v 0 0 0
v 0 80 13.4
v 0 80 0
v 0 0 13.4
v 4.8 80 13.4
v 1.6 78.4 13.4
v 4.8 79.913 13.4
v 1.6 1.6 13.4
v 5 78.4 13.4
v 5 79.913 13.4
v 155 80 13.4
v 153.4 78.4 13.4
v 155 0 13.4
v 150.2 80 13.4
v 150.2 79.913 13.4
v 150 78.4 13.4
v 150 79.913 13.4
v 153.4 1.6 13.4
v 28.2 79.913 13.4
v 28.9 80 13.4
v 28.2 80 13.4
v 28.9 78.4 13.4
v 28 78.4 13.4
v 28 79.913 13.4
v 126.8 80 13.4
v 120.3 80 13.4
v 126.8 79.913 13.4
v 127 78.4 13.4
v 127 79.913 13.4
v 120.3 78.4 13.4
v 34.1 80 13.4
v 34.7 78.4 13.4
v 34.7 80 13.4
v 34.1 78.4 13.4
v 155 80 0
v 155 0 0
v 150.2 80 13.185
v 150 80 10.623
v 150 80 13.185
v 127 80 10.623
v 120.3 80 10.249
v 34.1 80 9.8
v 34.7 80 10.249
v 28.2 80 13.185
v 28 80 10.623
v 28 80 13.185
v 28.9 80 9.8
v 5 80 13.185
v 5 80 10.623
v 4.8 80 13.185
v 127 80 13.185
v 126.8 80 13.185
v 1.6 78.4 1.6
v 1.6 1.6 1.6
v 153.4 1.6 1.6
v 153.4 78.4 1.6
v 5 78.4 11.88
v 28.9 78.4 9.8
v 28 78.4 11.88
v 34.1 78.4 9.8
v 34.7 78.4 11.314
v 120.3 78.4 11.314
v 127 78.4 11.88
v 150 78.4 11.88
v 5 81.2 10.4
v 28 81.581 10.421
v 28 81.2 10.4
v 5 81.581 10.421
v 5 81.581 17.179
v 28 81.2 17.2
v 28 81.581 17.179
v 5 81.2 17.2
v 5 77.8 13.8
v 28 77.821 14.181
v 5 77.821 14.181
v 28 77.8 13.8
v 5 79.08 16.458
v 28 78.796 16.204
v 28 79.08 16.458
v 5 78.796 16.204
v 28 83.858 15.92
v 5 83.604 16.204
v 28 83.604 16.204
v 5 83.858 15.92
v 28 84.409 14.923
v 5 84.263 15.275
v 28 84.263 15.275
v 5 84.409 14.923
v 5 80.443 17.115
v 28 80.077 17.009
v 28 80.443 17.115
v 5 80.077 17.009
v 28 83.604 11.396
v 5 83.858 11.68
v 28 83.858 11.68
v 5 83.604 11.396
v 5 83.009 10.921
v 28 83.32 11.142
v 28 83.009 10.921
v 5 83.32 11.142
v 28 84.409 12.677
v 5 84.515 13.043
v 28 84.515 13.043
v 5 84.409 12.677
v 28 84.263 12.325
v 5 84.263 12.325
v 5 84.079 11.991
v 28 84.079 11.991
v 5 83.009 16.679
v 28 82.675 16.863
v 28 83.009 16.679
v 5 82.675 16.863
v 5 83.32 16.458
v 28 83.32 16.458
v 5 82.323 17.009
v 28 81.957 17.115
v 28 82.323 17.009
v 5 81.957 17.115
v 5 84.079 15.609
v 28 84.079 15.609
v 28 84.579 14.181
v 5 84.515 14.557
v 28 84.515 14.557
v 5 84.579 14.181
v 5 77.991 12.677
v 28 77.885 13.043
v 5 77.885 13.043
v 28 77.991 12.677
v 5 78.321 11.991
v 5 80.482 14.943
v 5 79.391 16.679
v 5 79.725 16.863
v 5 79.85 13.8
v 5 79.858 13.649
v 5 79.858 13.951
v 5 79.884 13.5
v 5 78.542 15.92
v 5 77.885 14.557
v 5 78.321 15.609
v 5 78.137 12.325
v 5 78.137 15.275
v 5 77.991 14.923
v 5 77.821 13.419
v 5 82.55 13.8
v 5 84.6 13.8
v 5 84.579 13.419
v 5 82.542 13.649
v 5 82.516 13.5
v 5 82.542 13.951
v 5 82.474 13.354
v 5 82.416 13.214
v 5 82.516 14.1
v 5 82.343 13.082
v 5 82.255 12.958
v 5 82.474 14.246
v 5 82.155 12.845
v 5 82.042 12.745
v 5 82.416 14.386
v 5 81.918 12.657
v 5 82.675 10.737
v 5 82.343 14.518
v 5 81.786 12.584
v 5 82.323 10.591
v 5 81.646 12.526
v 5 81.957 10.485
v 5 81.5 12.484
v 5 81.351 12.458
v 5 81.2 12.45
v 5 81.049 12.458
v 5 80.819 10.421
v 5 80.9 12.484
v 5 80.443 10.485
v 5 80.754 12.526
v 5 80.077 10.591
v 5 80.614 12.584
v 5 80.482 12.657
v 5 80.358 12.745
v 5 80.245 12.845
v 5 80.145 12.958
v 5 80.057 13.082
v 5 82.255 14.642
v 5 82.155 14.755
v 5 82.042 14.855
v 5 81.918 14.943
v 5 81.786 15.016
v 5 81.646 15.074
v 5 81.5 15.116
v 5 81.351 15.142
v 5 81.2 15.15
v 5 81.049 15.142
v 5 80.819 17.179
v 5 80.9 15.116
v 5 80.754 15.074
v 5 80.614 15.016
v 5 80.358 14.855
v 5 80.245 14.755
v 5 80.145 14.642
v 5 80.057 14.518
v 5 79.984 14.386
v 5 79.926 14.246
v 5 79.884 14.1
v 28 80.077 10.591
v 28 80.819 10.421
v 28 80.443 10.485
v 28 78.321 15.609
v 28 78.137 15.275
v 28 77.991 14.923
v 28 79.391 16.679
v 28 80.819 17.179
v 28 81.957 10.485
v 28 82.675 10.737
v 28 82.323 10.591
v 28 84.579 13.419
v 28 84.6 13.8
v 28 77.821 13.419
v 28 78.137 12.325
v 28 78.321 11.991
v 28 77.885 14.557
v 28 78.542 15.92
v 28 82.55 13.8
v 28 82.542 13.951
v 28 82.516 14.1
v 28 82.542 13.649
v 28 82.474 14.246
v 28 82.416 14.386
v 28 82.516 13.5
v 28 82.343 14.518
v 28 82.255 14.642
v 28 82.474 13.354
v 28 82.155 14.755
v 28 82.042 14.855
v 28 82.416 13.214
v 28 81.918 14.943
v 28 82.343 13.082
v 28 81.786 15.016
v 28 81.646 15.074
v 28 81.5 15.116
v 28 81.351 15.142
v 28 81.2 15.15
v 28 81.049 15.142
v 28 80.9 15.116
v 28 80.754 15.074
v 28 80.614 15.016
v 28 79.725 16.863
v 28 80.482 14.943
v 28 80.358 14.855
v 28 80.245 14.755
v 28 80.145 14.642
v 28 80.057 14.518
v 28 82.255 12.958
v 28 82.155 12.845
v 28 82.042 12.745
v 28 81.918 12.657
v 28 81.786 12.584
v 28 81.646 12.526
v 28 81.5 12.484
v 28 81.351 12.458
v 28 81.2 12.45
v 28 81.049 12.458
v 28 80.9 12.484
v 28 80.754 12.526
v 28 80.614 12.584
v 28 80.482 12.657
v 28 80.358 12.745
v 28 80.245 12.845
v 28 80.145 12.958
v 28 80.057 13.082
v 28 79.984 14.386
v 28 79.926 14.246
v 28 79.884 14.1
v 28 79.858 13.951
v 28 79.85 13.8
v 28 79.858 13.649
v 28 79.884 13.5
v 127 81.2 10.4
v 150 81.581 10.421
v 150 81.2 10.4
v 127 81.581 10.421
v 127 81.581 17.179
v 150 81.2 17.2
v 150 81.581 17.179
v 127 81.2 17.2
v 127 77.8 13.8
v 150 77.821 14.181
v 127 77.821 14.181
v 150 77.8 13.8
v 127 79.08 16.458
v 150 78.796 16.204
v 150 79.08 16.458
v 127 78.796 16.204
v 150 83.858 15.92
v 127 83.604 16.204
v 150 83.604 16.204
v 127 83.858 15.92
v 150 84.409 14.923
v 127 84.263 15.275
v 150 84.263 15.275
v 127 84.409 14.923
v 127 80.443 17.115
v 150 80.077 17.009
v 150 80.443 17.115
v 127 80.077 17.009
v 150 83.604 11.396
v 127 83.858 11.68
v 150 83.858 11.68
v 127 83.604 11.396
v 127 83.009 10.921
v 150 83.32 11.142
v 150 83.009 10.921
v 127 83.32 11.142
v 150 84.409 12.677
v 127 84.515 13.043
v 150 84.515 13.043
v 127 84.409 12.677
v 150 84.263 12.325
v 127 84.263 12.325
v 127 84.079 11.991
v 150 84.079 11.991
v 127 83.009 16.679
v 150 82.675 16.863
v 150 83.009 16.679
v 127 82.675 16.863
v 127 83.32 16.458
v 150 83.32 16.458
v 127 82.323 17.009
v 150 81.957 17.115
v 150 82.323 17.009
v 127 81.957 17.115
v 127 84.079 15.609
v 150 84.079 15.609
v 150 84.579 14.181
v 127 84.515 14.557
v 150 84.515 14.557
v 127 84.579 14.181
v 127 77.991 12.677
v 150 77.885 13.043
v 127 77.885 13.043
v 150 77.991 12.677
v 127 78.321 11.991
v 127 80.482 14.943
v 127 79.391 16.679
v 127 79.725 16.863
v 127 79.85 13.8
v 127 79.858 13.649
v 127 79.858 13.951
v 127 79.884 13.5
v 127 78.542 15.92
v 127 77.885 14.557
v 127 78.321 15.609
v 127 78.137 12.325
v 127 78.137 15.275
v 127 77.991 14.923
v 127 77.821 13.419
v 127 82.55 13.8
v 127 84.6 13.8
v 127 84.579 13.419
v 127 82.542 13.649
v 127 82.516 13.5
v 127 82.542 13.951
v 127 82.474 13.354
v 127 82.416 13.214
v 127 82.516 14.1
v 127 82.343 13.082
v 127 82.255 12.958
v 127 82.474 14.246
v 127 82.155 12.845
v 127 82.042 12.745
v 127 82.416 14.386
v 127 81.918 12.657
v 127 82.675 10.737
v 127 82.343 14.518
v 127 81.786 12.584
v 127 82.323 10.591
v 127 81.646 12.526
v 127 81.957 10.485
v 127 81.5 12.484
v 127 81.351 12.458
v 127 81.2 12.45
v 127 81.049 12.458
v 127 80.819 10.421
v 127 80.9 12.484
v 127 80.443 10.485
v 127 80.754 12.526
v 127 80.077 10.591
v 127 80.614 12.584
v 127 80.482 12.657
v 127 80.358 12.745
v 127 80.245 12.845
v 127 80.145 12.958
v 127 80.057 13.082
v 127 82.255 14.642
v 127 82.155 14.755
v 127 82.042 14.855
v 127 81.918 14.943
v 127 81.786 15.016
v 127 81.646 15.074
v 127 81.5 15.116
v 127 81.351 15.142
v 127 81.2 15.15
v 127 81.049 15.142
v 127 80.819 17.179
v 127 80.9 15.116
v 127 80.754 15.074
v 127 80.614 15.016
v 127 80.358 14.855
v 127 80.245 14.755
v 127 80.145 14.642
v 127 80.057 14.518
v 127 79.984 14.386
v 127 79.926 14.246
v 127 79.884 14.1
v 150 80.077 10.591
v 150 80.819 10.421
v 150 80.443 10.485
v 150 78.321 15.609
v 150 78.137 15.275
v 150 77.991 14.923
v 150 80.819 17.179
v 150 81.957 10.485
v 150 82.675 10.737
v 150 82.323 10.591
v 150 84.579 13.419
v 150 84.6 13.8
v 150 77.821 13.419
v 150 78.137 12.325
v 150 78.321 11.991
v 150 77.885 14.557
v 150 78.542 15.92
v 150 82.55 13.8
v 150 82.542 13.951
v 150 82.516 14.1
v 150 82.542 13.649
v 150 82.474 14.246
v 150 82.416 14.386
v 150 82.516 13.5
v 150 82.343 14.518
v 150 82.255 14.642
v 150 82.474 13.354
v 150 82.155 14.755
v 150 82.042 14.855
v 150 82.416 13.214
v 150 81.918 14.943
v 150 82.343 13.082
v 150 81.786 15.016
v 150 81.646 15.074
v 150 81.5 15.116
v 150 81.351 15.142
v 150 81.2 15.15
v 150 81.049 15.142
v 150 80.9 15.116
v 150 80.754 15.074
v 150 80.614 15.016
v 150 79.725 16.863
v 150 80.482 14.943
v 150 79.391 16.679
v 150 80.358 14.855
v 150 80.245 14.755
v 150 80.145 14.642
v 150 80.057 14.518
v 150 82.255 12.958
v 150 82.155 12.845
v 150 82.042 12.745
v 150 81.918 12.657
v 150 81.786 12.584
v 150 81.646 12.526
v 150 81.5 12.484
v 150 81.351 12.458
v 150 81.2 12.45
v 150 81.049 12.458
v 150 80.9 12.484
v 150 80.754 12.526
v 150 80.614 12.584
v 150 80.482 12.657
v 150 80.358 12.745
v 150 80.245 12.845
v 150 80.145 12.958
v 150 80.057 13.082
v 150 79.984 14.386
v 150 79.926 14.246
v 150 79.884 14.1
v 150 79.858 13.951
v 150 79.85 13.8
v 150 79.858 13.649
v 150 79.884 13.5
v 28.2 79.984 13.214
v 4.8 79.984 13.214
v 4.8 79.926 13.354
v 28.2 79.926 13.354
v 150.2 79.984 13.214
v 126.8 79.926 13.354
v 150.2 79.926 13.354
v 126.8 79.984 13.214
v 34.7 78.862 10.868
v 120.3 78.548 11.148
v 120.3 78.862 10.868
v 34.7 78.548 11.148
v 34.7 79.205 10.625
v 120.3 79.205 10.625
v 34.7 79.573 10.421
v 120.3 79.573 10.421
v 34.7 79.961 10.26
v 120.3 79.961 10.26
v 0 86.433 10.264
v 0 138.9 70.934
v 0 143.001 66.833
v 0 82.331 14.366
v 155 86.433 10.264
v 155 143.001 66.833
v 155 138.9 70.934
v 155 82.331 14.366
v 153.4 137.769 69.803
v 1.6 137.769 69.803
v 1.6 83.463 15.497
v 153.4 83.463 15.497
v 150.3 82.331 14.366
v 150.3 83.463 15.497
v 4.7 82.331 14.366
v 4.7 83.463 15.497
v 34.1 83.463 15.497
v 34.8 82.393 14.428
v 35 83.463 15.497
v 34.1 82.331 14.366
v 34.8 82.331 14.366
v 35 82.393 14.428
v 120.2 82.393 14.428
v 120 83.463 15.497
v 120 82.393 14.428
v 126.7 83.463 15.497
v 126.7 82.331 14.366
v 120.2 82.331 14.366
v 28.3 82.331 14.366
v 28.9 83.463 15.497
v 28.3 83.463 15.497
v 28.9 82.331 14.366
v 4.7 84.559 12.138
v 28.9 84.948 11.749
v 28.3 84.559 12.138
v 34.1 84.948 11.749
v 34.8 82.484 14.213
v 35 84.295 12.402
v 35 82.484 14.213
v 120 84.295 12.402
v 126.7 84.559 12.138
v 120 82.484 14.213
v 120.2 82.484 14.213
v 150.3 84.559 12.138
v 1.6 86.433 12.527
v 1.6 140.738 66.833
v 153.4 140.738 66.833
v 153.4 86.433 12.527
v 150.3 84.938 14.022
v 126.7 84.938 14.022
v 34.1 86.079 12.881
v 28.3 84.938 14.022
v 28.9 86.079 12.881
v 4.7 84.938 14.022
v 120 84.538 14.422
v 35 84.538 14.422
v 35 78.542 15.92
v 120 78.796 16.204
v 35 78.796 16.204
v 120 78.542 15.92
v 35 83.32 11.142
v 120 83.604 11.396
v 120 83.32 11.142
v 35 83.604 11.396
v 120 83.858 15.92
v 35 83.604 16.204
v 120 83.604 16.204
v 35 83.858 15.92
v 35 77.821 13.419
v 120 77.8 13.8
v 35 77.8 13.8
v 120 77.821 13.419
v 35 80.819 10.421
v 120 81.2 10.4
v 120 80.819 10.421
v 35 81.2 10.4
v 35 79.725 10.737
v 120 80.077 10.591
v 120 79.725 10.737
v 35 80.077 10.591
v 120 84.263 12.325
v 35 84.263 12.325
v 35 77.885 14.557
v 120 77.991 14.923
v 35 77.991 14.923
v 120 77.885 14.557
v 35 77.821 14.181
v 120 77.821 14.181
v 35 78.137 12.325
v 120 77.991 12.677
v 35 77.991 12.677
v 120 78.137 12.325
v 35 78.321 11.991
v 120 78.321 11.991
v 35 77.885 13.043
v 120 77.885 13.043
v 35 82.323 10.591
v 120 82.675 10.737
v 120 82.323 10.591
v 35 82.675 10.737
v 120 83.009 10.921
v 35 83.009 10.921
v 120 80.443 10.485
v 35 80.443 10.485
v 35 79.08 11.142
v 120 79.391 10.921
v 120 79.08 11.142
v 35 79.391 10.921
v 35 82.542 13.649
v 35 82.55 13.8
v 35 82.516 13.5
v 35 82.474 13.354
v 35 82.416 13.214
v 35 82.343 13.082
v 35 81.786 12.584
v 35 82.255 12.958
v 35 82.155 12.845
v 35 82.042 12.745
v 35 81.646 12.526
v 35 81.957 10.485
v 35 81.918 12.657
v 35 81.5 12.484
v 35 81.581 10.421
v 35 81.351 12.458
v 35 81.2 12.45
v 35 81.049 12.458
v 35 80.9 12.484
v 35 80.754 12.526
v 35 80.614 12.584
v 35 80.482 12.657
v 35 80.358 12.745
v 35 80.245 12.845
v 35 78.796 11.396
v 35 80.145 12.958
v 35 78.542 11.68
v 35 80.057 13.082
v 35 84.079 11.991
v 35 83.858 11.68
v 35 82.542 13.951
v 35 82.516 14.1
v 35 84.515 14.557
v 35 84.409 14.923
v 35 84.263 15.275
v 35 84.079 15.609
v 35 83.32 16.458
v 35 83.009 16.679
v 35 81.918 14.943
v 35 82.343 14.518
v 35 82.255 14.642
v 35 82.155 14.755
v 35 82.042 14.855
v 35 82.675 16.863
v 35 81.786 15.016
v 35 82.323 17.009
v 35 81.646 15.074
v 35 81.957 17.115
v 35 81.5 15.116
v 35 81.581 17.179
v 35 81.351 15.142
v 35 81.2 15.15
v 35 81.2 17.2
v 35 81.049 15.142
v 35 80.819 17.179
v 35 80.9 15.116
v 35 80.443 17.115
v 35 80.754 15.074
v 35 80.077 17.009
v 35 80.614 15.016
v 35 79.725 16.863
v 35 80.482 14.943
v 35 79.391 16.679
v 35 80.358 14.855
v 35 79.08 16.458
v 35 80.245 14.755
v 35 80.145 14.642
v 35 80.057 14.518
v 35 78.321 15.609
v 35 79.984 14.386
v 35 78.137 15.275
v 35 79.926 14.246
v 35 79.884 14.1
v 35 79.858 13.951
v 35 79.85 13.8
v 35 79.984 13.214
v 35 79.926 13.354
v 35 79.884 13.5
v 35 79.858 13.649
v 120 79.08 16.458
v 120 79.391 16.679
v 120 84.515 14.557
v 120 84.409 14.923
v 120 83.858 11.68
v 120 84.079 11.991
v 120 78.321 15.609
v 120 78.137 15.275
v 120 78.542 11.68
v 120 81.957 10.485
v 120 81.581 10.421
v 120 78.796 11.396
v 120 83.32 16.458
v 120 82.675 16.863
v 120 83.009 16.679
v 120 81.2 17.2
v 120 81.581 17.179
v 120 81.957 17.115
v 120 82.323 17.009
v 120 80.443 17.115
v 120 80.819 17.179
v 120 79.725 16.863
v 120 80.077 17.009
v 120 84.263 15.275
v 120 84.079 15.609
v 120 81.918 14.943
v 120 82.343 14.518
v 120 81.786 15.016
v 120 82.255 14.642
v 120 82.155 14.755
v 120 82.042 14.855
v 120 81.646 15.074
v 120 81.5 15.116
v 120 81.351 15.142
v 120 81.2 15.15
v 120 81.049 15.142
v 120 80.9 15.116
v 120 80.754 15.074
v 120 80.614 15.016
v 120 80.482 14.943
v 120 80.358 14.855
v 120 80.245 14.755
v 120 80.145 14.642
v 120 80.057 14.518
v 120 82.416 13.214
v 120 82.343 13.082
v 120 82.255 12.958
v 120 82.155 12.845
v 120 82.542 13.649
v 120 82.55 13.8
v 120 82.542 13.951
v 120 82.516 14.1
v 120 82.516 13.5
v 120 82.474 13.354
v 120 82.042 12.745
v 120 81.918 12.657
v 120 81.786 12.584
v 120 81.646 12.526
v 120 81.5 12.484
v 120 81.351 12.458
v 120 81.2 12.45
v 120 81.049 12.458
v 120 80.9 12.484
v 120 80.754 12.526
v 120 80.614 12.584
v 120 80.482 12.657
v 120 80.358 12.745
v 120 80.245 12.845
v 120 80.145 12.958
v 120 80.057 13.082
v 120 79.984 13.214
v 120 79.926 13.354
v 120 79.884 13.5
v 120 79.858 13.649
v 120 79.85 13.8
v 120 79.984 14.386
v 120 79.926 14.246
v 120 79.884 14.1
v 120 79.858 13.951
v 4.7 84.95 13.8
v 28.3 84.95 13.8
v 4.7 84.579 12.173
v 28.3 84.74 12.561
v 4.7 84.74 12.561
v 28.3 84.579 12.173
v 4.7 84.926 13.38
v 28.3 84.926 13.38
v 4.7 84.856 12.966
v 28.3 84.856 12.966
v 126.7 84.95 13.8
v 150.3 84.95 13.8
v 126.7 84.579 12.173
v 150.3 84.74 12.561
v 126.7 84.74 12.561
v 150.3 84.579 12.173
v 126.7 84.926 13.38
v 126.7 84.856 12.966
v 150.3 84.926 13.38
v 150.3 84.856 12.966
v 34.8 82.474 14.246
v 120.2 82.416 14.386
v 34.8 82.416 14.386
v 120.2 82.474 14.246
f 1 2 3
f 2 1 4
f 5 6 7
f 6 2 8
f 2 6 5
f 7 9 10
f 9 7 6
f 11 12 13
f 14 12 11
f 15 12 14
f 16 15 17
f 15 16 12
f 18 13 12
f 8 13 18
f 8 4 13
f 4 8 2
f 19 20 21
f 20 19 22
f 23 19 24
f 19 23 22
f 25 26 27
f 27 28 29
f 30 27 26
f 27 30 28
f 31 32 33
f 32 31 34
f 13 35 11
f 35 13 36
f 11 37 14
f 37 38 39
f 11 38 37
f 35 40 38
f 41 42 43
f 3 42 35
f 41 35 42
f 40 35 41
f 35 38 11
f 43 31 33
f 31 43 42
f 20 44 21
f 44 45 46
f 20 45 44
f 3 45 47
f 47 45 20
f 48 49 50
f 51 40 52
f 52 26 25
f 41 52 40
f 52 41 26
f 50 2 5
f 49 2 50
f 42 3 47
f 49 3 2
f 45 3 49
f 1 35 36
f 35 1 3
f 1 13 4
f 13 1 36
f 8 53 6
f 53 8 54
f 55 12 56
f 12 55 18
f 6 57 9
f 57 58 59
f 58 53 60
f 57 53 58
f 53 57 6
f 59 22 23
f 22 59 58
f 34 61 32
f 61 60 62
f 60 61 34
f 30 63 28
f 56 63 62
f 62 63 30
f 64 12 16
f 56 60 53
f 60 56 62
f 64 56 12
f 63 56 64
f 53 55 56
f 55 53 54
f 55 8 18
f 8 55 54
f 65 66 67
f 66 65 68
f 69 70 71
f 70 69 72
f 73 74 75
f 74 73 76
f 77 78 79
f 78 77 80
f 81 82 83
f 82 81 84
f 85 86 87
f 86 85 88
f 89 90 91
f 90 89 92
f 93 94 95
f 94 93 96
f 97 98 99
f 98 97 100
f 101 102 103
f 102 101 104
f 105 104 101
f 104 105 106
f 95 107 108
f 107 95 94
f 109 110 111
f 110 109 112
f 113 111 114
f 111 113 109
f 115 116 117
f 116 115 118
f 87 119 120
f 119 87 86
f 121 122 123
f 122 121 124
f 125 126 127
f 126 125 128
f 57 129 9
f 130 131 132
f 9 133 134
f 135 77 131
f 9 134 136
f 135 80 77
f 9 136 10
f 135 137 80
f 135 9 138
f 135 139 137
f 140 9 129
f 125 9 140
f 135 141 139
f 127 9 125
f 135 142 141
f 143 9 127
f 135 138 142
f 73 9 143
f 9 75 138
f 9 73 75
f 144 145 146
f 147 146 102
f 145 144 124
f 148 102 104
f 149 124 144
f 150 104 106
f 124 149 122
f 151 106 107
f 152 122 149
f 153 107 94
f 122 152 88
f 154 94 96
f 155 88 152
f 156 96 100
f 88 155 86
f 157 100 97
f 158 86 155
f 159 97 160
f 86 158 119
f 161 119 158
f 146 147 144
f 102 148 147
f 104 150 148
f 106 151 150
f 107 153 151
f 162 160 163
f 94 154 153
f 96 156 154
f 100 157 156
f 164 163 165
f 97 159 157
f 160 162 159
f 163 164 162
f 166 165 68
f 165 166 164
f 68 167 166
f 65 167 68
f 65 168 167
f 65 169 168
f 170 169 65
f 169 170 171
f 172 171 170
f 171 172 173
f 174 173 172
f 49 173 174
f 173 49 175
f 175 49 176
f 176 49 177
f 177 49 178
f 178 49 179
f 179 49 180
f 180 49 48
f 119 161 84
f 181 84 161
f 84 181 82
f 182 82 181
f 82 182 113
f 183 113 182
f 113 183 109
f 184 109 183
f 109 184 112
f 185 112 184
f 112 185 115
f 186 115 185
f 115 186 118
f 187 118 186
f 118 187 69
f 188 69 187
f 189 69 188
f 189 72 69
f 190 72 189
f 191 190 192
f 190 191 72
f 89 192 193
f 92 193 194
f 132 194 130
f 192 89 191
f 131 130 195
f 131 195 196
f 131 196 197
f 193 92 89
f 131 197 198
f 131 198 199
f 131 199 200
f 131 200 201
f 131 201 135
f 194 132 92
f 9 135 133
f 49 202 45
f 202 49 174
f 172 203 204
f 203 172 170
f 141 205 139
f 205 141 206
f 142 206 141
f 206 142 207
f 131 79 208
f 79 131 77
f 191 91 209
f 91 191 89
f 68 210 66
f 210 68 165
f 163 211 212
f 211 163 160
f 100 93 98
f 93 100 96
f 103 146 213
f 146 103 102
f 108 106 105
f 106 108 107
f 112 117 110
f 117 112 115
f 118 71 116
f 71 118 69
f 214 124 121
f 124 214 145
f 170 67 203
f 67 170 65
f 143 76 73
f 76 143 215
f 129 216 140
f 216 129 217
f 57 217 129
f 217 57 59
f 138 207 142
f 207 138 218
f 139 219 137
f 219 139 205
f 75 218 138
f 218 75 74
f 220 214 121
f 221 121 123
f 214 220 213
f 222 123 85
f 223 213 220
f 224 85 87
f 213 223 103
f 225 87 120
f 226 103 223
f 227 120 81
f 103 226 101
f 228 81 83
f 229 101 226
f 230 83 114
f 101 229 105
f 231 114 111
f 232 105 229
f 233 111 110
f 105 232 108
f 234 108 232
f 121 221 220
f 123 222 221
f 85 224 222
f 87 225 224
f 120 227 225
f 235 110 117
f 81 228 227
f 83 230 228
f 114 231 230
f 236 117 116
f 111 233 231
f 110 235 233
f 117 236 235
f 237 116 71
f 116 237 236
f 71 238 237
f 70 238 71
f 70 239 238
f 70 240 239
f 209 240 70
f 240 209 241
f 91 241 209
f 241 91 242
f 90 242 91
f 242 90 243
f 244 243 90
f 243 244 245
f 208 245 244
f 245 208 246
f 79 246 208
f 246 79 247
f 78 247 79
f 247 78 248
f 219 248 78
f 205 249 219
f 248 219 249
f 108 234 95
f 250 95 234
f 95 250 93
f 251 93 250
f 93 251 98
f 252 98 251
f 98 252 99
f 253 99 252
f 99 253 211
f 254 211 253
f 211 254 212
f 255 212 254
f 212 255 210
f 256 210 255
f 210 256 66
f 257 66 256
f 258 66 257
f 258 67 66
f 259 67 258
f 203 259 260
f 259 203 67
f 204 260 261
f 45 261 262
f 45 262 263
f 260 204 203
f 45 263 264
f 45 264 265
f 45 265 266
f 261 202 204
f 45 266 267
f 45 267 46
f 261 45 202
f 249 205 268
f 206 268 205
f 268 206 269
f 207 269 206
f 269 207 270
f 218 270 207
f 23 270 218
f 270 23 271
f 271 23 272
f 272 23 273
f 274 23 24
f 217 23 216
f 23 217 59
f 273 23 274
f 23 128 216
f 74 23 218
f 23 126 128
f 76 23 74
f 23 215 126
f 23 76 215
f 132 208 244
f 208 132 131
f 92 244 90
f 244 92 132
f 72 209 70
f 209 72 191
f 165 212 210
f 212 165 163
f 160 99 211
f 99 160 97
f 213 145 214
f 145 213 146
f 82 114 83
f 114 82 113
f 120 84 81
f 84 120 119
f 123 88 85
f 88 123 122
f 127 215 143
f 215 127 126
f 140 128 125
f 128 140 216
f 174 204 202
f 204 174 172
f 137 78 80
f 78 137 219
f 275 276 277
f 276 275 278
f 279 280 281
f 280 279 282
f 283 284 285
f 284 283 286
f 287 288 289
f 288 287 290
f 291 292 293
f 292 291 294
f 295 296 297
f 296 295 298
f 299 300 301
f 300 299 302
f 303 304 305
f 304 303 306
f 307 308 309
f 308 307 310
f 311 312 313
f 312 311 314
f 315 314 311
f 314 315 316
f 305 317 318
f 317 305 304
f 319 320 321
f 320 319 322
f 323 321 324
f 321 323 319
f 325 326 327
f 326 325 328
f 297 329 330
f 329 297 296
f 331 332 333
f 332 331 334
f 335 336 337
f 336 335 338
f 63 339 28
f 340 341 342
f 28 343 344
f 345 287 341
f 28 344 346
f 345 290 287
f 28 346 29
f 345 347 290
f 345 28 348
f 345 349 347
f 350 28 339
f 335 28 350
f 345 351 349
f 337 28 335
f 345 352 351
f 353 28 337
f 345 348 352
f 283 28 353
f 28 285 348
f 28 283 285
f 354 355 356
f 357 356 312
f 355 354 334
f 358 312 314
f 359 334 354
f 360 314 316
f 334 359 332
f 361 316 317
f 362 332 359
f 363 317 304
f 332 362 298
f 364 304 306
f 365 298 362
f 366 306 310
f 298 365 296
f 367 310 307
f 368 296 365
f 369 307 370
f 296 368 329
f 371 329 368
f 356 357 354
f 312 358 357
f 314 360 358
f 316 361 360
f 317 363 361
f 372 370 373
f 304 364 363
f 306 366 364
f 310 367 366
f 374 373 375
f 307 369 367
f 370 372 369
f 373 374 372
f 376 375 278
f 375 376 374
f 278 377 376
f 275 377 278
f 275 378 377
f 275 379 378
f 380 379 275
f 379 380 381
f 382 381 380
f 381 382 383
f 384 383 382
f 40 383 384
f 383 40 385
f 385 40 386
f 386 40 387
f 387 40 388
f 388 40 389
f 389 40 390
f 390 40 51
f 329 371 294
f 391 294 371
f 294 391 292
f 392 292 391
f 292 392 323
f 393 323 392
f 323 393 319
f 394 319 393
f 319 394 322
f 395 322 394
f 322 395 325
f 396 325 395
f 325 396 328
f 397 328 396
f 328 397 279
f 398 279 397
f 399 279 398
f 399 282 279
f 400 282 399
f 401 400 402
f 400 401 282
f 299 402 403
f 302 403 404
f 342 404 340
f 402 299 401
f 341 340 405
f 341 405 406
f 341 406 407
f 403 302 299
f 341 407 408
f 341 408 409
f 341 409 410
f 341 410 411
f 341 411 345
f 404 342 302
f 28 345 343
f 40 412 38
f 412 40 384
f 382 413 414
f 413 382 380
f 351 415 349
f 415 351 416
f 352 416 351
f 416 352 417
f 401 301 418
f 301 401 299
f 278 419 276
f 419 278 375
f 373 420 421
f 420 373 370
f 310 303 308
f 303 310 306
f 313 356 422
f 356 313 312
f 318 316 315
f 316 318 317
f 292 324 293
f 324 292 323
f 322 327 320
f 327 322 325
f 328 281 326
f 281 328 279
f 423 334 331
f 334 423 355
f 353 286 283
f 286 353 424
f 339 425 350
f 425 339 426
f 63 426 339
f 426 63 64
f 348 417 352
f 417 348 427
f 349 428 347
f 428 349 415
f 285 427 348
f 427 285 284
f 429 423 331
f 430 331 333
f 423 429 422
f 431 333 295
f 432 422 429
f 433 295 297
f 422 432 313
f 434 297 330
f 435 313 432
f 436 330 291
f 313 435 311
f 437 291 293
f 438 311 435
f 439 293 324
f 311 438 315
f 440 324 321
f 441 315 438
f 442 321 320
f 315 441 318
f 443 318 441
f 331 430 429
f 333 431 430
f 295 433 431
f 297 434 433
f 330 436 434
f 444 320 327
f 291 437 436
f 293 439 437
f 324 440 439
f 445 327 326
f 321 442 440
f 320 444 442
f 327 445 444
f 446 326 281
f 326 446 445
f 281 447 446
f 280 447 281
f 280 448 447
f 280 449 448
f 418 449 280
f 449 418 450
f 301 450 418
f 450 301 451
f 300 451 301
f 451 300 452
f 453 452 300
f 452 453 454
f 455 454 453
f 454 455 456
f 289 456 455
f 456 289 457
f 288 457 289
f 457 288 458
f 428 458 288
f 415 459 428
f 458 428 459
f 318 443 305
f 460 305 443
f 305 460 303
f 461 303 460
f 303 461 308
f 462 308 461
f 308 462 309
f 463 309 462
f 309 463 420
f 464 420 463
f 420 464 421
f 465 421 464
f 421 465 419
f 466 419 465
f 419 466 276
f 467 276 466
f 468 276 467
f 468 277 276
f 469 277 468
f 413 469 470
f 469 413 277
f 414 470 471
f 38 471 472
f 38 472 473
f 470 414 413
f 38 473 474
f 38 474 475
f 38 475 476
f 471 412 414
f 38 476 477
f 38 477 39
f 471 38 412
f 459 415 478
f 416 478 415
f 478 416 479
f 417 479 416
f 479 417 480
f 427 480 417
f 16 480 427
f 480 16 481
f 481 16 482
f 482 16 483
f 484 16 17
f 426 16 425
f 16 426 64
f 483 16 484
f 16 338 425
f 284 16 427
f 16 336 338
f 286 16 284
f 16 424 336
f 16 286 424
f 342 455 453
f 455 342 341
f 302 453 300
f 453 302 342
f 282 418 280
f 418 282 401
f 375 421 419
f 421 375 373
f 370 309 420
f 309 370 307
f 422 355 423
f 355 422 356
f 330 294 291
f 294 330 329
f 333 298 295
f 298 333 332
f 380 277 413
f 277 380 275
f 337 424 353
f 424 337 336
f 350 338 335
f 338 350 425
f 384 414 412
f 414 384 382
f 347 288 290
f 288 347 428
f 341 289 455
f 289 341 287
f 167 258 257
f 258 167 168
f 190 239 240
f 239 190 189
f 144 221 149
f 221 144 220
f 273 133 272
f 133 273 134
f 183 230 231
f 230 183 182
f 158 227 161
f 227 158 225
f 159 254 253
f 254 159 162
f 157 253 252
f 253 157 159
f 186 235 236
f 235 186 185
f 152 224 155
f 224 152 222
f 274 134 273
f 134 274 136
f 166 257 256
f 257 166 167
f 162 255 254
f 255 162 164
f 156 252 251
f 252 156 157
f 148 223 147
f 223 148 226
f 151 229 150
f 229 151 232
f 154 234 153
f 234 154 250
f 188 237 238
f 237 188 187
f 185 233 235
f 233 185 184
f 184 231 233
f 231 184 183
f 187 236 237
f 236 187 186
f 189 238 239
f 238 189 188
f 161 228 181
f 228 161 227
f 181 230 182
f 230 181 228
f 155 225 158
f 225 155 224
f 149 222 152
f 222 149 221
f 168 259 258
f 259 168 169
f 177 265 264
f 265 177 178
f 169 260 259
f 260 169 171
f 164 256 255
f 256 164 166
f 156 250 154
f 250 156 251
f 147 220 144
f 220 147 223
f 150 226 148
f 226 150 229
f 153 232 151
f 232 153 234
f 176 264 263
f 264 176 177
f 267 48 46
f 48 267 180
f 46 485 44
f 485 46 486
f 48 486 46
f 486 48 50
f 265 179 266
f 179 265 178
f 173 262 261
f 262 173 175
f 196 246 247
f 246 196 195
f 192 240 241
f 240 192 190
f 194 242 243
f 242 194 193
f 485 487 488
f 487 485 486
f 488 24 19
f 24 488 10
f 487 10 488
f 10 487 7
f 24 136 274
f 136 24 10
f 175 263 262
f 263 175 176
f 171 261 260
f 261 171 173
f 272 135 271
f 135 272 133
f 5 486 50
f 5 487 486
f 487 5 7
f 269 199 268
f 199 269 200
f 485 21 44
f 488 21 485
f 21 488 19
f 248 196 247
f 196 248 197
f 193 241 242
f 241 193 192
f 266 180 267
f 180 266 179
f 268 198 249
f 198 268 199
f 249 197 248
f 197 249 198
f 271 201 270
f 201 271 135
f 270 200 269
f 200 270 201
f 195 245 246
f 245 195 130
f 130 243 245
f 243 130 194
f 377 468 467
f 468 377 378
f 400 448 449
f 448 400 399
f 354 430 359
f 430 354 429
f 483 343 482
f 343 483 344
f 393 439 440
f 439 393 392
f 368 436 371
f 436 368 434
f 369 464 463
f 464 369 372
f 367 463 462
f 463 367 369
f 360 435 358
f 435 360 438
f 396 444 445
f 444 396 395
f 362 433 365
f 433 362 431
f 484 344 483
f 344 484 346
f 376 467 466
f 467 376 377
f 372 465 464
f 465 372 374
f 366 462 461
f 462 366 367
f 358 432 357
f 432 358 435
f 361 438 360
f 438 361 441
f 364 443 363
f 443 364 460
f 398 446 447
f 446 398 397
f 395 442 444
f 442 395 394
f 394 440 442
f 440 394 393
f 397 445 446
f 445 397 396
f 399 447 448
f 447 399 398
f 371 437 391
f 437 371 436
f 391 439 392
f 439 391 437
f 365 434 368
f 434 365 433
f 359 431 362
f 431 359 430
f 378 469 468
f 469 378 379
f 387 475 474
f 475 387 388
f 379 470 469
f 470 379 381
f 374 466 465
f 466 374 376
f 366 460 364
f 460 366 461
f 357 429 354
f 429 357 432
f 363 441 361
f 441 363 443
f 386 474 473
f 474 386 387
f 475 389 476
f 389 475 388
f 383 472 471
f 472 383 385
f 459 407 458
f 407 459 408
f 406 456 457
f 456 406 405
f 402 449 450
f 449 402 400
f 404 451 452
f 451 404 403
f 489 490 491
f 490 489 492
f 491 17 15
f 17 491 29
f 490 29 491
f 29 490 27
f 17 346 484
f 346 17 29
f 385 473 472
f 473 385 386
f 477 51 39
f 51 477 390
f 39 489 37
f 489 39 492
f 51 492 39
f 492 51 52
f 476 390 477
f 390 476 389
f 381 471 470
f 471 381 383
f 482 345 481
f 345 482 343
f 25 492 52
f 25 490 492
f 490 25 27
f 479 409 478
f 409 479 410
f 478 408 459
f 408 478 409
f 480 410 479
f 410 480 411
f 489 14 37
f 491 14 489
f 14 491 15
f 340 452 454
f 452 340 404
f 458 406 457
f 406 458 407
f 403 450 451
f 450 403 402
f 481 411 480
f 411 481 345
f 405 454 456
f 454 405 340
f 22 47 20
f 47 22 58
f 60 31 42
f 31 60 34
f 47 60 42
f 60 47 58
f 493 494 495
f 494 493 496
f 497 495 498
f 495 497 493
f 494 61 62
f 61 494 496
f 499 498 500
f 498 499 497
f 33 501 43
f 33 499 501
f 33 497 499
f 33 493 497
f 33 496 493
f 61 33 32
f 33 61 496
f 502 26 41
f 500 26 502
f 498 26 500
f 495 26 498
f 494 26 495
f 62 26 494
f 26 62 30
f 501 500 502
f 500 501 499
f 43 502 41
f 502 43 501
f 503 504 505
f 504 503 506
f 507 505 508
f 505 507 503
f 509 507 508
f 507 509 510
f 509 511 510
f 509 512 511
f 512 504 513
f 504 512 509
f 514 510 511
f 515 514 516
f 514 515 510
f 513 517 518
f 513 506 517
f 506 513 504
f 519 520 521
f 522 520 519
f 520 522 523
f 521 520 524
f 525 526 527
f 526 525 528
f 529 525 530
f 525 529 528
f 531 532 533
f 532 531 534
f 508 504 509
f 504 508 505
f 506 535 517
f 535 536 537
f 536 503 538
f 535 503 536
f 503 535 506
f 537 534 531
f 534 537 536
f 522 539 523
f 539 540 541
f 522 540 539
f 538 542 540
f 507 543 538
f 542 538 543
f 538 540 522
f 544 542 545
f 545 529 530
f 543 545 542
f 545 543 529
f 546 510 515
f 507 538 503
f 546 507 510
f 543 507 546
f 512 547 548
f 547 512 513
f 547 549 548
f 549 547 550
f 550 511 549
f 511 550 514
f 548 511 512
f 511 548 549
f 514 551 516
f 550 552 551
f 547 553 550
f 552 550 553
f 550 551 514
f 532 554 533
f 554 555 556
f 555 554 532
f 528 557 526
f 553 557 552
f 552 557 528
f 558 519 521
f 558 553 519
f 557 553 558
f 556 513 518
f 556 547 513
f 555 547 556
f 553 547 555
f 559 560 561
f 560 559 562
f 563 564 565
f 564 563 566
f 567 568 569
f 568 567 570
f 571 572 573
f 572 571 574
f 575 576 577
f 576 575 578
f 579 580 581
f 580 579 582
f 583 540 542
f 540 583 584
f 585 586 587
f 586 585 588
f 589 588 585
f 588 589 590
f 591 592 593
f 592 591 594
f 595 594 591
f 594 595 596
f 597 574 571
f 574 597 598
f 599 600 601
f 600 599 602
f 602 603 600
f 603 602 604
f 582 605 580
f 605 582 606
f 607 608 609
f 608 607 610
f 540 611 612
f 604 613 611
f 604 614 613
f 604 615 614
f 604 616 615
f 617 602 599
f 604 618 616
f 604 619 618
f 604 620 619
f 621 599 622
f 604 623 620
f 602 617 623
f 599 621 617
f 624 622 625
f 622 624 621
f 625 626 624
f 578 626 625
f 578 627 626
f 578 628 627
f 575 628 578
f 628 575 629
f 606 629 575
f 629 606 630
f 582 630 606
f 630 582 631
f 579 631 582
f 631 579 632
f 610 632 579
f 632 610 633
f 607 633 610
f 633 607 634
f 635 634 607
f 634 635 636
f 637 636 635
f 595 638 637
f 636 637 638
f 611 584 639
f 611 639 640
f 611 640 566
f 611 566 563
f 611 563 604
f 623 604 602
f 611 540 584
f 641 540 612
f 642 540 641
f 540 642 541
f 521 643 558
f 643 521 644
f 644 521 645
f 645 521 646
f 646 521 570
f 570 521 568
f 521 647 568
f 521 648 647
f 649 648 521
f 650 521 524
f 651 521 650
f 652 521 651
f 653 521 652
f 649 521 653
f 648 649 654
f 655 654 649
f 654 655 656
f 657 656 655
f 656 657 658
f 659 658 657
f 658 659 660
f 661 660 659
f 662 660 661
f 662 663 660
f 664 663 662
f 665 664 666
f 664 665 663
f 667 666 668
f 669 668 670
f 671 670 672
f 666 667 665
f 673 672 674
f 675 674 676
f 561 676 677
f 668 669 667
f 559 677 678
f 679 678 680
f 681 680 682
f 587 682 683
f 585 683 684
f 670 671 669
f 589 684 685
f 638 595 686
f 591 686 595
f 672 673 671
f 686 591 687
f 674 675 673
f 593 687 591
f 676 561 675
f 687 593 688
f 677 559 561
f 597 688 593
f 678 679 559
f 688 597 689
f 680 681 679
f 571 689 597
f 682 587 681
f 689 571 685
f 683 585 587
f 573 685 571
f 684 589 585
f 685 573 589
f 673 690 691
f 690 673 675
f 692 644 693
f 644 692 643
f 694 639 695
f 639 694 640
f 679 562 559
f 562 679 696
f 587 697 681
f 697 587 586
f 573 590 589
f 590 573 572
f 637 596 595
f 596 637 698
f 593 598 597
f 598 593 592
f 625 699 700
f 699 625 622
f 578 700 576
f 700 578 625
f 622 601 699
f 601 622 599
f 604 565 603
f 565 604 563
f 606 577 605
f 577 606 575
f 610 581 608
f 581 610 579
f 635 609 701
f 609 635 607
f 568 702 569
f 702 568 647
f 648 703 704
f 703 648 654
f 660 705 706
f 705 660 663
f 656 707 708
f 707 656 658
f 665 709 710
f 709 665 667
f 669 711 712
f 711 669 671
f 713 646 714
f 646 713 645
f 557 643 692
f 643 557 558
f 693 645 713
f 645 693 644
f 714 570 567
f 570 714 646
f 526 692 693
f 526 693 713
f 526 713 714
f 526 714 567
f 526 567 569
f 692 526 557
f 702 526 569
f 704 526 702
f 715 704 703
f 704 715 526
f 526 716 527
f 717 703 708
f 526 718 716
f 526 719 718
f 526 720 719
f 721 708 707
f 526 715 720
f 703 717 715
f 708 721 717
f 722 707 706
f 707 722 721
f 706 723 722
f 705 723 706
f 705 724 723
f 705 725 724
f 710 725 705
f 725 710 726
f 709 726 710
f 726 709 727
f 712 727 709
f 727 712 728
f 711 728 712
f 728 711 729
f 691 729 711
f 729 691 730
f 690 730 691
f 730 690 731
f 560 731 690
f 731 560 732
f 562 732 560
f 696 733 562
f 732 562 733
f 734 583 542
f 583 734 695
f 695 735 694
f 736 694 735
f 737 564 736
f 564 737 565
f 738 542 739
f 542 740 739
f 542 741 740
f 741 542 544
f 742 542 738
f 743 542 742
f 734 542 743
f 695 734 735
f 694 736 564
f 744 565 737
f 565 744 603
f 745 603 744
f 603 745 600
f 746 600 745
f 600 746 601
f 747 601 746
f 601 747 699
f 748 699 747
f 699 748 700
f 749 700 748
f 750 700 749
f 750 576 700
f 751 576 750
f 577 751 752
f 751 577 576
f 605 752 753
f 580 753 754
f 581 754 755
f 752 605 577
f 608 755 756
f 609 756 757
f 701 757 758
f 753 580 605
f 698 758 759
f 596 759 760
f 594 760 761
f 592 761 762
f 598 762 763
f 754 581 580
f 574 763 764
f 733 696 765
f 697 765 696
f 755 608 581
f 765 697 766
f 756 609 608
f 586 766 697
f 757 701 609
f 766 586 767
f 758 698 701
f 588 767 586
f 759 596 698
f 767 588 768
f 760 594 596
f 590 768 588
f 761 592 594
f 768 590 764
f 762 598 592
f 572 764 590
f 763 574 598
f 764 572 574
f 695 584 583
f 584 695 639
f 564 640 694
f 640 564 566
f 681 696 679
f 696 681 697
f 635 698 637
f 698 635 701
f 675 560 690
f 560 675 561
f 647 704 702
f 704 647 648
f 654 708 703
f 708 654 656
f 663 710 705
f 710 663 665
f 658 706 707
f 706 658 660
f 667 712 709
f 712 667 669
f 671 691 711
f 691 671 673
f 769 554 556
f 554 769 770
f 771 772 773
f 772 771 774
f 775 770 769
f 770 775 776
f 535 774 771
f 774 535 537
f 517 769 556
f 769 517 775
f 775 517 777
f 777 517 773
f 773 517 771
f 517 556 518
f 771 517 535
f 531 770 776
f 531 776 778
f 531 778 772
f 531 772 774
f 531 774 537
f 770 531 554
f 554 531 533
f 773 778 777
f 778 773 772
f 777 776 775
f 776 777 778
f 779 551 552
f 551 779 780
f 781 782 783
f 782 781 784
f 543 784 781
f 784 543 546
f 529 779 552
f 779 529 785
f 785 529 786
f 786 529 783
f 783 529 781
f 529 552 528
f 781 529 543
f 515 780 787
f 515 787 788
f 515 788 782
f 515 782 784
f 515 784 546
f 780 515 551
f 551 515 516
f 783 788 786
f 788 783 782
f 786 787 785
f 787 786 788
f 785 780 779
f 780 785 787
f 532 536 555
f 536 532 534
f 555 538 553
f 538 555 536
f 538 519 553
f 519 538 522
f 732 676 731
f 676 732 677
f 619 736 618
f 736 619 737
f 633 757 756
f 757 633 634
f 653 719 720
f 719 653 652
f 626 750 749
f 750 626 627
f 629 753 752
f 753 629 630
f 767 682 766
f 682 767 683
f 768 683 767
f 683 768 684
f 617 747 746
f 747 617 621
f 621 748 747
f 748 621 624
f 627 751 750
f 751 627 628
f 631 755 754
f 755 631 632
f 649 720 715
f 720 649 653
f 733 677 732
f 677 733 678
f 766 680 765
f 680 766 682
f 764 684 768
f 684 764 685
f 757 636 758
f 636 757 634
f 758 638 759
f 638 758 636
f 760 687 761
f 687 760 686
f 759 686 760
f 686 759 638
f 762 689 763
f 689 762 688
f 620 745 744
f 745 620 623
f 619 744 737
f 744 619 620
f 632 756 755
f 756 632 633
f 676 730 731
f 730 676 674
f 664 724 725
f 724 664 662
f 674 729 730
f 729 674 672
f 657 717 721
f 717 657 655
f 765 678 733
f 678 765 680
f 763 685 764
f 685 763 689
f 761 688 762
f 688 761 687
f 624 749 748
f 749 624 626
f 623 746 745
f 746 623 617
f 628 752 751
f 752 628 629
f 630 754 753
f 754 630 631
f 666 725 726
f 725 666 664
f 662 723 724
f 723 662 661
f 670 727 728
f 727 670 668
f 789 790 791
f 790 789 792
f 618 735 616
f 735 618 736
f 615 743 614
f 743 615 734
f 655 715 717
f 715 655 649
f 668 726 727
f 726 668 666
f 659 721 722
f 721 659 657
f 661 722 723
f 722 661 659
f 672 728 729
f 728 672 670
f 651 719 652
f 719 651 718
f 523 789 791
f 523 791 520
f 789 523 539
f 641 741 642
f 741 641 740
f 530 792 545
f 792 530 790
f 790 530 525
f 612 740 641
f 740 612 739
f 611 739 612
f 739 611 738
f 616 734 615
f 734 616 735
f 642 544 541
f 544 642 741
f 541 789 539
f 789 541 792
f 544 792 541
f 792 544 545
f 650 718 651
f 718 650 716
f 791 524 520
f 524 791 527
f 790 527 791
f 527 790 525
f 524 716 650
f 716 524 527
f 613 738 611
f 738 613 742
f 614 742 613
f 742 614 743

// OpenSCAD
// file: lid_shell.scad
// Generated by Mecha-Splicer: clamshell_terminal v1
// Dimension-based CAD ONLY: unknown PCB screw positions, USB access and real fit.
// lid / display tray (down-facing open pocket at closed angle), all dimensions in mm
$fn=56;
W=155.0; D=80.0; wall=1.6; floor=1.6;
HBASE=13.4; HLID=5.8; gap=0.8;
hy=81.2; hz=13.8;
kr=3.4; bore=2.7;

module lid_shell() {
  difference() {
    union() {
      difference() {
        translate([0,0,14.200000000000001]) cube([W,D,HLID]);
        translate([wall,wall,14.100000000000001]) cube([W-2*wall,D-2*wall,HLID-floor+0.1]);
      }
      translate([35.0,hy,hz]) rotate([0,90,0]) cylinder(h=85.0,r=kr);
    }
    // Lid-side four-wire cable entry (opposed to left-side base slot)
    translate([28.9,78.30000000000001,14.100000000000001]) cube([5.2,1.8,3.8000000000000003]);
    // Relief for two base knuckles entering lid rear wall at all open angles
    for (x=[4.7,126.7]) translate([x,hy,hz]) rotate([0,90,0]) cylinder(h=23.6,r=3.75);
    translate([34.8,hy,hz]) rotate([0,90,0]) cylinder(h=85.4,d=bore);
  }
}
lid_shell();
// file: base_shell.scad
// Generated by Mecha-Splicer: clamshell_terminal v1
// Dimension-based CAD ONLY: unknown PCB screw positions, USB access and real fit.
// base / keyboard tray, all dimensions in mm
$fn=56;
W=155.0; D=80.0; wall=1.6; floor=1.6;
HBASE=13.4; HLID=5.8; gap=0.8;
hy=81.2; hz=13.8;
kr=3.4; bore=2.7;

module base_shell() {
  difference() {
    union() {
      difference() {
        cube([W,D,HBASE]);
        translate([wall,wall,floor]) cube([W-2*wall,D-2*wall,HBASE+1]);
      }
      for (x=[5.0,127.0]) translate([x,hy,hz]) rotate([0,90,0]) cylinder(h=23.0,r=kr);
    }
    // Strain-relief entry only: actual cable bend life remains untested
    translate([28.9,78.30000000000001,9.8]) cube([5.2,1.8,3.7]);
    // Clearance pocket for opposite lid knuckle through base rear wall
    translate([34.7,hy,hz]) rotate([0,90,0]) cylinder(h=85.6,r=3.75);
    // Through-bore including relief outside the short segments
    for (x=[4.8,126.8]) translate([x,hy,hz]) rotate([0,90,0]) cylinder(h=23.4,d=bore);
  }
}
base_shell();
// main file
// Mecha-Splicer assembly preview only. Angle 0=closed; -135=open.
use <base_shell.scad>
use <lid_shell.scad>
angle_deg = -135.0;
hy=81.2; hz=13.8;
color([0.17,0.23,0.31]) base_shell();
color([0.42,0.53,0.61])
translate([0,hy,hz]) rotate([angle_deg,0,0])
  translate([0,-hy,-hz]) lid_shell();
